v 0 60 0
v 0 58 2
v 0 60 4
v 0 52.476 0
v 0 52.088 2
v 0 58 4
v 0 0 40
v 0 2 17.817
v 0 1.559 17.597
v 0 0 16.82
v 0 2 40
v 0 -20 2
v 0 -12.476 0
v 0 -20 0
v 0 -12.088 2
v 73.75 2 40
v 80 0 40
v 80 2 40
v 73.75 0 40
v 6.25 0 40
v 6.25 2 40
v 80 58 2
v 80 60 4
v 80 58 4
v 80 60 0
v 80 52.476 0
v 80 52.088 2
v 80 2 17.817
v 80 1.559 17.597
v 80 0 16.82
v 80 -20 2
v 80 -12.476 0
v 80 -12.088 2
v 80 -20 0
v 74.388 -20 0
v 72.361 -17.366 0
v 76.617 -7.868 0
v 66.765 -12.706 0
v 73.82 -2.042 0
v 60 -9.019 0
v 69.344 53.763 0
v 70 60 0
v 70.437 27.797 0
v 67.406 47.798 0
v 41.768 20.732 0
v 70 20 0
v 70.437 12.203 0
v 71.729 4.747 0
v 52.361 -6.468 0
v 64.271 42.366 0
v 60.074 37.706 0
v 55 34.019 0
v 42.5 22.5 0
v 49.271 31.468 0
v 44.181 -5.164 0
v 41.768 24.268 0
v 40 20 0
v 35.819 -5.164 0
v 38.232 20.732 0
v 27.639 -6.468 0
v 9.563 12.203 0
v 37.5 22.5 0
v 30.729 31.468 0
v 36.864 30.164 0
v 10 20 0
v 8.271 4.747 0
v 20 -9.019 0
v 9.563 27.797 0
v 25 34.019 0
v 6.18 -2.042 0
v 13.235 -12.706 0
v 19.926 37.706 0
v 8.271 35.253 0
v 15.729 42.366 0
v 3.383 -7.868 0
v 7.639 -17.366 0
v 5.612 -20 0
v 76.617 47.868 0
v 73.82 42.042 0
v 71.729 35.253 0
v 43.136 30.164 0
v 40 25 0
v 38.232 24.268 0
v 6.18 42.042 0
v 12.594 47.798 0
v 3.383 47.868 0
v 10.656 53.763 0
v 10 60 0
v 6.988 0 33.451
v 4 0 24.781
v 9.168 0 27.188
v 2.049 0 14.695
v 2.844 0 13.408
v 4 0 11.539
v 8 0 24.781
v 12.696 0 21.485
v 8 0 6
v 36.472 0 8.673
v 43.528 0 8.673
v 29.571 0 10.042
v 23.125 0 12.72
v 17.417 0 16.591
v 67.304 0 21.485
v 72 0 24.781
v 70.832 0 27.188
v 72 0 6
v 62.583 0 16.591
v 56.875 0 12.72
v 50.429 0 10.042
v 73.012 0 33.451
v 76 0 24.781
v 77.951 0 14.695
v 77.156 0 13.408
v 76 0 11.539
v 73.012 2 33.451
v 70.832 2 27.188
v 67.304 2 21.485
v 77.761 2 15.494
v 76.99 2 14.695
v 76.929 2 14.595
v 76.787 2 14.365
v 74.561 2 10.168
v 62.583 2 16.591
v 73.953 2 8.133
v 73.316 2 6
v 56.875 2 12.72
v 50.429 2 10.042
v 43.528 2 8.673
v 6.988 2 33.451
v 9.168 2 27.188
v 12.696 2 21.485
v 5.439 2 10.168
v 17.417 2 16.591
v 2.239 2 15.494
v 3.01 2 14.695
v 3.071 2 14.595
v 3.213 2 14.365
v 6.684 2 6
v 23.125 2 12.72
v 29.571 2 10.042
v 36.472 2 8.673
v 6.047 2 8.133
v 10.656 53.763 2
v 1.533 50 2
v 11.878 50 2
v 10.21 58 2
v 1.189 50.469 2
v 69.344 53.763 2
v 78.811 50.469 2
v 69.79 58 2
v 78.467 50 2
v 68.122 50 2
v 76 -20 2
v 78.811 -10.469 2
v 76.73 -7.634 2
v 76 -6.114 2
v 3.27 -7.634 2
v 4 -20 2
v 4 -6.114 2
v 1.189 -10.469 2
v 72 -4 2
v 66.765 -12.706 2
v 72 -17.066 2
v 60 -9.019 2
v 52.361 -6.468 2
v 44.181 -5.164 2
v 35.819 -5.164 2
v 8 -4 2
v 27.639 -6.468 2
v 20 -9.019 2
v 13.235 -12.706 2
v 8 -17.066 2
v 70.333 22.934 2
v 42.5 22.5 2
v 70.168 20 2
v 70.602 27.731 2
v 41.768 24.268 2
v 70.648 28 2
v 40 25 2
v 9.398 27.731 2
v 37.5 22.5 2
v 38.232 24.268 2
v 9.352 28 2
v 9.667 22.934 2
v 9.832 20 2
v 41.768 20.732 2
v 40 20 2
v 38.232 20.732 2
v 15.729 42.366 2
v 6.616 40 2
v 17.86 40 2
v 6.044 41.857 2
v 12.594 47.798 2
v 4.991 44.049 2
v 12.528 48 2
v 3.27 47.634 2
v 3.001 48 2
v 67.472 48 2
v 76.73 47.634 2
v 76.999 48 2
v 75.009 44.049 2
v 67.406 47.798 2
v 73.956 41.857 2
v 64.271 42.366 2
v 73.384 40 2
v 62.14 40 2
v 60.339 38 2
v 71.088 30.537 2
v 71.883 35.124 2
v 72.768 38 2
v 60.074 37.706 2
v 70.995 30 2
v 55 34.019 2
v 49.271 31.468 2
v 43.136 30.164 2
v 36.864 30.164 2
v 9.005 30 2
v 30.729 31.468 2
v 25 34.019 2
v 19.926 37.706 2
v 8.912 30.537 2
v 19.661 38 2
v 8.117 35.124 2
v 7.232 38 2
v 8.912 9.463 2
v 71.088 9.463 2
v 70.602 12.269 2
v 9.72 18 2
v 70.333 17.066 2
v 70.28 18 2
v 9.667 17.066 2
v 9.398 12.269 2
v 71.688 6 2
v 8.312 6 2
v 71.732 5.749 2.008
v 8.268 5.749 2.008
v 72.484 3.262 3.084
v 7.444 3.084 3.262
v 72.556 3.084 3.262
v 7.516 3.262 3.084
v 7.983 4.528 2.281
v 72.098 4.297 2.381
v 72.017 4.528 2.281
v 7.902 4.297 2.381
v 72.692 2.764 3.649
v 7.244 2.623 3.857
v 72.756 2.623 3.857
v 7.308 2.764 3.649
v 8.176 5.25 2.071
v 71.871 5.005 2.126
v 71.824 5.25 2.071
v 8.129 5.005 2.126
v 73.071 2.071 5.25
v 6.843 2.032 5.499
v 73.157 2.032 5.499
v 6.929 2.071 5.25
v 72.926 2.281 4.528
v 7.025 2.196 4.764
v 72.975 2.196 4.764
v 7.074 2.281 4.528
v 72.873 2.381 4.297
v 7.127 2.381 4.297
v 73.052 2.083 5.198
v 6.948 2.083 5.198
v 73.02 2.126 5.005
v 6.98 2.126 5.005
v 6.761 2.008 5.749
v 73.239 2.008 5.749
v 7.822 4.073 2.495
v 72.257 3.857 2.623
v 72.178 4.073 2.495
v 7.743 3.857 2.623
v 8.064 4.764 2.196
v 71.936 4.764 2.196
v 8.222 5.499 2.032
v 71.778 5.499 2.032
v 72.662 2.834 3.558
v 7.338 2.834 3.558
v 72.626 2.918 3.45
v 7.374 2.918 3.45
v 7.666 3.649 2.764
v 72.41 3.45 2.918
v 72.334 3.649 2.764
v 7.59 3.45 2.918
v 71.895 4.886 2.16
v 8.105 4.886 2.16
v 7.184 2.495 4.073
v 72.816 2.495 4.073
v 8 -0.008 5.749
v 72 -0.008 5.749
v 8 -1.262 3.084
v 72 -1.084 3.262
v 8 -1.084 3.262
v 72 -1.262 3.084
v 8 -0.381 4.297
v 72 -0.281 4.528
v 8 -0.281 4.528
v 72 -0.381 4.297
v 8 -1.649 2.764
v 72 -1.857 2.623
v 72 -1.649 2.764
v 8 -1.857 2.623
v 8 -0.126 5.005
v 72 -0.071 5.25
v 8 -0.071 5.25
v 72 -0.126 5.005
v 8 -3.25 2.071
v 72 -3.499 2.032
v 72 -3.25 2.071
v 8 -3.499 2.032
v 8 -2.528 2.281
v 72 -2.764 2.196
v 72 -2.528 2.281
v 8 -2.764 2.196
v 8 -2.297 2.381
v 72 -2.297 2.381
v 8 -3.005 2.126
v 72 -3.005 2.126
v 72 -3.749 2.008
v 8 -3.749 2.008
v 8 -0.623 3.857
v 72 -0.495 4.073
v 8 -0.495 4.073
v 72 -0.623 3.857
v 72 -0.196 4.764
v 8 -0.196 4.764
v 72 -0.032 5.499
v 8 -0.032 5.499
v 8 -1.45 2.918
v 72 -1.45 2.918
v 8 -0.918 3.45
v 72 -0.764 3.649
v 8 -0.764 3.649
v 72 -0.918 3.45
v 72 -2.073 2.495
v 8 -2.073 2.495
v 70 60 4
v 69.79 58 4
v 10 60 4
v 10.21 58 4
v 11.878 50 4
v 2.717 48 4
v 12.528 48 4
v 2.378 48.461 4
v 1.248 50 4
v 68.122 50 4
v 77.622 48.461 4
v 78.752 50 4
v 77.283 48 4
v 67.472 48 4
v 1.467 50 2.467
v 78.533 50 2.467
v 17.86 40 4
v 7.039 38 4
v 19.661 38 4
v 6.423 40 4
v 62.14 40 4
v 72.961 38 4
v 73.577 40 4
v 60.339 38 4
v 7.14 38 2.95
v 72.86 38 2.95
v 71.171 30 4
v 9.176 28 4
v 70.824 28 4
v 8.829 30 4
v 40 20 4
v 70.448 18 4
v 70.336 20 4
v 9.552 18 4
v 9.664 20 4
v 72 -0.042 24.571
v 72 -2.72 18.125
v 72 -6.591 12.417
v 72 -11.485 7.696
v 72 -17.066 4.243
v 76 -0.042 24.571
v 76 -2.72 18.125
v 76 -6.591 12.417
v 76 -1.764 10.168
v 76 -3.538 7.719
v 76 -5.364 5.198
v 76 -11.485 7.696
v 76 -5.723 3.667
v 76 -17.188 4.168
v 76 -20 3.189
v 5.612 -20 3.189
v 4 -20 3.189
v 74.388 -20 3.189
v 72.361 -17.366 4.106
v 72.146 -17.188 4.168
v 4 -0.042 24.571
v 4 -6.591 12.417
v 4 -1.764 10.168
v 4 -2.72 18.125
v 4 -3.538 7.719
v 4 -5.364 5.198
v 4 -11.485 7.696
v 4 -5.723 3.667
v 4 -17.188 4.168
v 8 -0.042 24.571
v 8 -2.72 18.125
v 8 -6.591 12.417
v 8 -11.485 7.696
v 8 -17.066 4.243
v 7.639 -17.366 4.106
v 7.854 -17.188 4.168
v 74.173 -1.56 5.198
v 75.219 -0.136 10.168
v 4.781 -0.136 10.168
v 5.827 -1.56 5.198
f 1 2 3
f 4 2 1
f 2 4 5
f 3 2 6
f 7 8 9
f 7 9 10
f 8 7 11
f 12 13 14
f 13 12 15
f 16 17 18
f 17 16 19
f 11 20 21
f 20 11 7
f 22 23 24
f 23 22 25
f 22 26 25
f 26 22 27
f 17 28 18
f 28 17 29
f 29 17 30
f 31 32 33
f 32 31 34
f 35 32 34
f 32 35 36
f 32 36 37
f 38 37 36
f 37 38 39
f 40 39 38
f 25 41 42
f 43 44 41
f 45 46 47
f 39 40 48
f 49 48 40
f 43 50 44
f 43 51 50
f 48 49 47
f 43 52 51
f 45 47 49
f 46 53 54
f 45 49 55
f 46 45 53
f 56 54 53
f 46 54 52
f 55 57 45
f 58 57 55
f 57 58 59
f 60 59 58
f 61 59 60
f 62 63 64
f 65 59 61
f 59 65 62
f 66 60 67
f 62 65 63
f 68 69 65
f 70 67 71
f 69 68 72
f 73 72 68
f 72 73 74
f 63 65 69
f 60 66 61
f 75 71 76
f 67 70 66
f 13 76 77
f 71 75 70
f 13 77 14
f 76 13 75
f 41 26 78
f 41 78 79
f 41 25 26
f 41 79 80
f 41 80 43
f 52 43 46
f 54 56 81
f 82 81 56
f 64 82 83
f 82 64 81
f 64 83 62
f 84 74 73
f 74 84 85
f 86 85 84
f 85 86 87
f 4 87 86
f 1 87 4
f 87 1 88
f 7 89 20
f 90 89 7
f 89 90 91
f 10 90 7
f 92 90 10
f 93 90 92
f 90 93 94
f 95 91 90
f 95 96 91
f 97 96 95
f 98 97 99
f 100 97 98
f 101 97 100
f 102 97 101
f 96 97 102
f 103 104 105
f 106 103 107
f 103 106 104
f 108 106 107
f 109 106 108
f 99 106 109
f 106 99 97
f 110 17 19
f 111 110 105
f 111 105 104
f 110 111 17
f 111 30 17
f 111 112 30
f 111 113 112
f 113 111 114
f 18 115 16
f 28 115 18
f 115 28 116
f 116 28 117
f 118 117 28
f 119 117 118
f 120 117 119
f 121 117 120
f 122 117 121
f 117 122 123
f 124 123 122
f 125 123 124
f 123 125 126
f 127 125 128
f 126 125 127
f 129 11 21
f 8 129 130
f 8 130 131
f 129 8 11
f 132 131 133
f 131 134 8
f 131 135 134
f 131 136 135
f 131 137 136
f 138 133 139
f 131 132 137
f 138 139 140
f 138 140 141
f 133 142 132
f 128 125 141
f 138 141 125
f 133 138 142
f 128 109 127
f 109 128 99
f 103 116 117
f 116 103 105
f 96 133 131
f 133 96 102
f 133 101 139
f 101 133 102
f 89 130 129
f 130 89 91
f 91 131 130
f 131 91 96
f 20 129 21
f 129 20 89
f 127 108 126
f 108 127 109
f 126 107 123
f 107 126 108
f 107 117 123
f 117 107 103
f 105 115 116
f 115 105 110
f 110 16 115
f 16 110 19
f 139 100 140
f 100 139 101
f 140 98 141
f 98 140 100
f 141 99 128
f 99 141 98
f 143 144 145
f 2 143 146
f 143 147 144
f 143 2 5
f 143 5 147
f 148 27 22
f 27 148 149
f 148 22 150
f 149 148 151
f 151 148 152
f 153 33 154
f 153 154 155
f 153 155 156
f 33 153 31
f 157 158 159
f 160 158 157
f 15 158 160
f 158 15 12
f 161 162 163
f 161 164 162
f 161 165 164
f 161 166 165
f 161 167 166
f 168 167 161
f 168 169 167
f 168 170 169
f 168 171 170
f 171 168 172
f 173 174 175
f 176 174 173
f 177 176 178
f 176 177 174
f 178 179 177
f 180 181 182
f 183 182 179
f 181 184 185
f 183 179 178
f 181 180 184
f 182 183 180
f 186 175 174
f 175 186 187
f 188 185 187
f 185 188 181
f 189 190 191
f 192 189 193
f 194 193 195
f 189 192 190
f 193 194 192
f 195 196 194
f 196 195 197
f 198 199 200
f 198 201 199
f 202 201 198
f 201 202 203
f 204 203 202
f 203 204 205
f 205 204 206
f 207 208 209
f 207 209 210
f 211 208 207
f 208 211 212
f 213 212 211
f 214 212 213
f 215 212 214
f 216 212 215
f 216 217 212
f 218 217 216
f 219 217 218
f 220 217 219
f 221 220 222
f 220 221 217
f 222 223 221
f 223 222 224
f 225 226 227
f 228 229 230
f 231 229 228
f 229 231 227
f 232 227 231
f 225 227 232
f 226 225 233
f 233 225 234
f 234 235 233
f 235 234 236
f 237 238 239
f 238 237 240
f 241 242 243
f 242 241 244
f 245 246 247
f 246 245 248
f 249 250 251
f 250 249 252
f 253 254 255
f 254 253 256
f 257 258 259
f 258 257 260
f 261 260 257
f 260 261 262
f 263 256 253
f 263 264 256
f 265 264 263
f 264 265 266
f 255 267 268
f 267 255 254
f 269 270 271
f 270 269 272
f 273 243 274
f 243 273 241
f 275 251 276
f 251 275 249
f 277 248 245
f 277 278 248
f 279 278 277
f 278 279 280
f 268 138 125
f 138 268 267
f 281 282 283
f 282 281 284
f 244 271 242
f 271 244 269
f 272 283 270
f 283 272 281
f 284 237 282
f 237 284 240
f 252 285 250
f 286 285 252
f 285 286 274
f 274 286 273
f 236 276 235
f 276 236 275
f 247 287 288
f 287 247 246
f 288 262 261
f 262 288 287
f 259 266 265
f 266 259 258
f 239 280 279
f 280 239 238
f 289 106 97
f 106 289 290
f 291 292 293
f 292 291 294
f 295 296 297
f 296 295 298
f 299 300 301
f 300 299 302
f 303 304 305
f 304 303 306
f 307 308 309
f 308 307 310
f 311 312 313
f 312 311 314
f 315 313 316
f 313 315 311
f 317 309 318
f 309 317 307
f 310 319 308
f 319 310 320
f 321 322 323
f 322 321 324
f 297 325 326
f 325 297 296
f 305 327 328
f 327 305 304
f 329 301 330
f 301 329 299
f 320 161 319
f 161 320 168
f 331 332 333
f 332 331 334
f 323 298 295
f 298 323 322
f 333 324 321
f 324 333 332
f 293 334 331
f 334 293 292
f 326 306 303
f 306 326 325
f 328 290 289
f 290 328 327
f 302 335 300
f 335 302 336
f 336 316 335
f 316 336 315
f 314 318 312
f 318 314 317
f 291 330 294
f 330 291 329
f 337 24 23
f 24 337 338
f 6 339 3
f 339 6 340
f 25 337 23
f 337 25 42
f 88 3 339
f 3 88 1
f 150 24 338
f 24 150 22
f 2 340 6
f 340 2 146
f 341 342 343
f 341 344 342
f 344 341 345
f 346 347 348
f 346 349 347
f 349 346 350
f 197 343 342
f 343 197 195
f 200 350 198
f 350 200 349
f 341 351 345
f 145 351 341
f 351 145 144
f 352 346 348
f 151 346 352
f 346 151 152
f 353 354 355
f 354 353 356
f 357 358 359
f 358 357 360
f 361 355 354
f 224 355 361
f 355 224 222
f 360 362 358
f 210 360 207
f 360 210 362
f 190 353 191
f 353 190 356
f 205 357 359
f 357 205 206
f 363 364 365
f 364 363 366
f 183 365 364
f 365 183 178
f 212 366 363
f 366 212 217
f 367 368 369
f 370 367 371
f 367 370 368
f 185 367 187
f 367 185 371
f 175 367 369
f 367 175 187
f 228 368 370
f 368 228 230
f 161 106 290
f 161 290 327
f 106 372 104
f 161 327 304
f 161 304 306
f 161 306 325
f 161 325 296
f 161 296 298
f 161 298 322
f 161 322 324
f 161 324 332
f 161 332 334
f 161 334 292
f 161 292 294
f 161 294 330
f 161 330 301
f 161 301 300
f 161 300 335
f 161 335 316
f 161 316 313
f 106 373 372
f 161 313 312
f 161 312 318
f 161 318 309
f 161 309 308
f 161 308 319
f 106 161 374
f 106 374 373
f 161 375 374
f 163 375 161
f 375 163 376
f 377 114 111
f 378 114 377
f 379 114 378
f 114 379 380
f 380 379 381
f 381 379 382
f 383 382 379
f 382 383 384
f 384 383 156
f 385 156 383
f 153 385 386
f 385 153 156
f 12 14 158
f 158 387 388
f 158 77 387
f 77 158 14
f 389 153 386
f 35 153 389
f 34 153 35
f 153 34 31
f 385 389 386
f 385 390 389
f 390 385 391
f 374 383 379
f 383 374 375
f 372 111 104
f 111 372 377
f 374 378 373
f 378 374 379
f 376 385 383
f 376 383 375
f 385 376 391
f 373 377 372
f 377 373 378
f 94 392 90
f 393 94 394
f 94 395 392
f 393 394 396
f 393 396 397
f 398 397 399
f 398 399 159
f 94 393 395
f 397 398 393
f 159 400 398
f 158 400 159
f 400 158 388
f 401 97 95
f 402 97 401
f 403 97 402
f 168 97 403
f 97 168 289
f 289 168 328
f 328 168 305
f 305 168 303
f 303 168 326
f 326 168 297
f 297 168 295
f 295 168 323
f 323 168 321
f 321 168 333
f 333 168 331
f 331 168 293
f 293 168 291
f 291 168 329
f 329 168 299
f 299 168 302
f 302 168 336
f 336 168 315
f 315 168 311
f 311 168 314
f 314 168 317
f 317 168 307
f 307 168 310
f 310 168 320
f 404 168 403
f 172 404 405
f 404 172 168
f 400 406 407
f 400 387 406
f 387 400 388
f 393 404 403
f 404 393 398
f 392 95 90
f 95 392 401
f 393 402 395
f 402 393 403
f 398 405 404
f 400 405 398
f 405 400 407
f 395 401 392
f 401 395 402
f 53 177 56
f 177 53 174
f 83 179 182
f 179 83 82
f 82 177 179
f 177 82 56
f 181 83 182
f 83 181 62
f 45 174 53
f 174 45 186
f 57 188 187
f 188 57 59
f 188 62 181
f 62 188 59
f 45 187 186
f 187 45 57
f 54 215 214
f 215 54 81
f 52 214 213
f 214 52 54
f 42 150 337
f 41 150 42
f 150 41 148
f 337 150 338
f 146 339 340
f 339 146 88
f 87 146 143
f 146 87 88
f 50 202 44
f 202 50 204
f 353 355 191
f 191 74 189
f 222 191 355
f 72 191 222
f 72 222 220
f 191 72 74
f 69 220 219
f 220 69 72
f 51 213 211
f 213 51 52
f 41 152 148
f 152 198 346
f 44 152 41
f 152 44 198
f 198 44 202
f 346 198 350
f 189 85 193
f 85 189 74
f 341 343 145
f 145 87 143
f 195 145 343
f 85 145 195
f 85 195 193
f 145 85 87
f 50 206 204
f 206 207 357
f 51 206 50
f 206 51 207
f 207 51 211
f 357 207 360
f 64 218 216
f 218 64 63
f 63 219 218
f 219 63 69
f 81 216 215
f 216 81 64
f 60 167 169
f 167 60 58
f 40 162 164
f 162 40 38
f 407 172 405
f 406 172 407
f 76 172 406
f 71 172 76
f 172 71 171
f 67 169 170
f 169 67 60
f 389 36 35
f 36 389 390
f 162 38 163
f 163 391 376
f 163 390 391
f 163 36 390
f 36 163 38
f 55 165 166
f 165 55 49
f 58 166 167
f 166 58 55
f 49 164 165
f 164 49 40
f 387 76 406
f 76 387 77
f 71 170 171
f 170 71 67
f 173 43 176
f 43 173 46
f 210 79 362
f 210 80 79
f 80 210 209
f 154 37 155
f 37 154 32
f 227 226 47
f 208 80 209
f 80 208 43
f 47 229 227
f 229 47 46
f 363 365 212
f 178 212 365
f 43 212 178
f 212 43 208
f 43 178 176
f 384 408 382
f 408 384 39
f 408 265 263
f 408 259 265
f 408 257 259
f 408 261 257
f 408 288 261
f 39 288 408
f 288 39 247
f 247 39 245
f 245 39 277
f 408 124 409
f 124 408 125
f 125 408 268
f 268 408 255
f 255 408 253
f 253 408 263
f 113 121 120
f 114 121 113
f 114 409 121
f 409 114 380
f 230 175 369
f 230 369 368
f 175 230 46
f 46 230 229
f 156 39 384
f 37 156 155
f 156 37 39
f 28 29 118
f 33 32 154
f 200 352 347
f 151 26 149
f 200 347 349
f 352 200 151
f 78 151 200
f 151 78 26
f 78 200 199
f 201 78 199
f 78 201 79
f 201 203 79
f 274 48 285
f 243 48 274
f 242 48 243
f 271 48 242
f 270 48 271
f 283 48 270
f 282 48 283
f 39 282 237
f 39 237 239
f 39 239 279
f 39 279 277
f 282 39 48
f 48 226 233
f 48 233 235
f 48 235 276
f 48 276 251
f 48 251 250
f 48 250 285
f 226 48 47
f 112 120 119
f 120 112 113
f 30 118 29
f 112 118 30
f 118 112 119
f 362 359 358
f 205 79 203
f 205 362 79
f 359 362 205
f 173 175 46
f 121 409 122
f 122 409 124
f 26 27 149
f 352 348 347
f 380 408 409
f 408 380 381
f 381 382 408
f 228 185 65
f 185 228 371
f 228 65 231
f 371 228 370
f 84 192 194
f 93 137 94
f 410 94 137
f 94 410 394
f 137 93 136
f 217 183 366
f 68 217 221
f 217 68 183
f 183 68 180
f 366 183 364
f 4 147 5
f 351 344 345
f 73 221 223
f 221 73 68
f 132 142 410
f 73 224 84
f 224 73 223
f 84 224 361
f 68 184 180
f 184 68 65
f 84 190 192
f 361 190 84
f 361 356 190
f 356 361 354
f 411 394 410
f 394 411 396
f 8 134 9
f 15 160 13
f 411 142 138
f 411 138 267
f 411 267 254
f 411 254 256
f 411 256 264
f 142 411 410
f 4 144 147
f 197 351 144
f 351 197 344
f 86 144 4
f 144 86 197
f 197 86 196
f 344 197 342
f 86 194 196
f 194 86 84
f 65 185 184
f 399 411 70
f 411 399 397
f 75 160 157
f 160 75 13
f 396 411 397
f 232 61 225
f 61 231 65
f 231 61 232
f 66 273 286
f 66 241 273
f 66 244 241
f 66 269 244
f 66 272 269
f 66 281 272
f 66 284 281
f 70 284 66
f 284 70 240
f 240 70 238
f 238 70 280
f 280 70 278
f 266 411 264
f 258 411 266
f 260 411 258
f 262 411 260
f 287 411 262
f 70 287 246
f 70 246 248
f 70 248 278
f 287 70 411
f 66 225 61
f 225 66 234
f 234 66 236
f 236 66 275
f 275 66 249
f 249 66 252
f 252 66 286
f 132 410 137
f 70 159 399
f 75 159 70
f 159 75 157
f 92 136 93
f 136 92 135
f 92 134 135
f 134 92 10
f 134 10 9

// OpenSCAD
/* [Dimensions] */
// Base Length
LEN_BASE = 60; // [10:100] Base Length
// Base width
WIDTH = 80; // [40:120] Base width
// Thickness of Base and Back
THICK = 2; // [1:10] Thickness of Base and Back
// height of Back
HEIGHT = 40; // [10:80] height of Back
// Number of Steps
STEPS_NO = 5;// [2:8] Number of Steps
// Strength of Steps
STRENGTH = 2; // [1:10] Strength of Steps
// Space between Steps
STEPS_SPACE = 10;// [1:10] Space between Steps
// radius of curved corners
cornerRad = 3; // radius of curved corners

// -----------------------------
// Define Modules
// -----------------------------

module body(width, length, heigth, thickness){
difference() {
cube([width,length,thickness]);//Base

}

difference() {
    cube([width,thickness,heigth]);//Back
    translate([width/2,0,heigth])rotate([90,0,0])scale([(WIDTH-20)/40,1.4])cylinder(  10, d=45, center=true);//Back-Cut-Out
    
    };
rotate([0,0,90])translate([THICK,-width,thickness])
corner(heigth/10,width);//Front Corner Rounding
rotate([90,0,0])cube([width,thickness,20]);//Back Stabilizer
rotate([0,270,90])translate([thickness,-width,0])
corner(heigth/10,width);//Back Corner Rounding

translate([width/2,length,0])cylinder(  thickness, d=5);//Front Indicator

translate([0,LEN_BASE,THICK])
steps(STEPS_NO,STRENGTH,STEPS_SPACE,WIDTH);

translate([width-8,-20,0])//Back left
difference() { //Back support
    cube([4,20,heigth]);
    translate([0,-10,heigth-5])rotate([0,90,0])scale([(WIDTH-20)/40,1.4])cylinder(  width, d=45, center=true);//Back-Cut-Out
    
    };

translate([4,-20,0])//Back right
difference() { //Back support
    cube([4,20,heigth]);
    translate([0,-10,heigth-5])rotate([0,90,0])scale([(WIDTH-20)/40,1.4])cylinder(  width, d=45, center=true);//Back-Cut-Out
    
    };

}


module steps(number, strength, space, width){
    for (i = [0 : number-1]){
   translate([0,-(strength)-space*i,0])cube([width,strength,strength]);
    }
    }

module corner(WIDTH,DEPTH){
difference() {
cube([WIDTH, DEPTH, WIDTH]);
rotate([270,0,0])translate([WIDTH,-WIDTH,0])cylinder(DEPTH, r=WIDTH, $fn=100);
}};

// -----------------------------
// Put Components together
// -----------------------------
difference() {
body(WIDTH,LEN_BASE,HEIGHT,THICK);
translate([WIDTH/2,(LEN_BASE-15)/2,THICK])cylinder(  20, d=5, center=true);// Cut Center Hole

translate([WIDTH/2,(LEN_BASE),0])scale([(WIDTH-20)/40,1.5])cylinder(  10, d=40, center=true);//Base Cut Out Front


translate([WIDTH/2,-35,0])scale([(WIDTH)/40,1.5])cylinder(  10, d=40, center=true);//Base Cut Out Back
    
translate([WIDTH+10,20,0])scale([(WIDTH)/100,1.5])sphere(r = 25);//Side Left Cut Out

translate([-10,20,0])scale([(WIDTH)/100,1.5])sphere(r = 25);//Side Right Cut Out
    }
    
